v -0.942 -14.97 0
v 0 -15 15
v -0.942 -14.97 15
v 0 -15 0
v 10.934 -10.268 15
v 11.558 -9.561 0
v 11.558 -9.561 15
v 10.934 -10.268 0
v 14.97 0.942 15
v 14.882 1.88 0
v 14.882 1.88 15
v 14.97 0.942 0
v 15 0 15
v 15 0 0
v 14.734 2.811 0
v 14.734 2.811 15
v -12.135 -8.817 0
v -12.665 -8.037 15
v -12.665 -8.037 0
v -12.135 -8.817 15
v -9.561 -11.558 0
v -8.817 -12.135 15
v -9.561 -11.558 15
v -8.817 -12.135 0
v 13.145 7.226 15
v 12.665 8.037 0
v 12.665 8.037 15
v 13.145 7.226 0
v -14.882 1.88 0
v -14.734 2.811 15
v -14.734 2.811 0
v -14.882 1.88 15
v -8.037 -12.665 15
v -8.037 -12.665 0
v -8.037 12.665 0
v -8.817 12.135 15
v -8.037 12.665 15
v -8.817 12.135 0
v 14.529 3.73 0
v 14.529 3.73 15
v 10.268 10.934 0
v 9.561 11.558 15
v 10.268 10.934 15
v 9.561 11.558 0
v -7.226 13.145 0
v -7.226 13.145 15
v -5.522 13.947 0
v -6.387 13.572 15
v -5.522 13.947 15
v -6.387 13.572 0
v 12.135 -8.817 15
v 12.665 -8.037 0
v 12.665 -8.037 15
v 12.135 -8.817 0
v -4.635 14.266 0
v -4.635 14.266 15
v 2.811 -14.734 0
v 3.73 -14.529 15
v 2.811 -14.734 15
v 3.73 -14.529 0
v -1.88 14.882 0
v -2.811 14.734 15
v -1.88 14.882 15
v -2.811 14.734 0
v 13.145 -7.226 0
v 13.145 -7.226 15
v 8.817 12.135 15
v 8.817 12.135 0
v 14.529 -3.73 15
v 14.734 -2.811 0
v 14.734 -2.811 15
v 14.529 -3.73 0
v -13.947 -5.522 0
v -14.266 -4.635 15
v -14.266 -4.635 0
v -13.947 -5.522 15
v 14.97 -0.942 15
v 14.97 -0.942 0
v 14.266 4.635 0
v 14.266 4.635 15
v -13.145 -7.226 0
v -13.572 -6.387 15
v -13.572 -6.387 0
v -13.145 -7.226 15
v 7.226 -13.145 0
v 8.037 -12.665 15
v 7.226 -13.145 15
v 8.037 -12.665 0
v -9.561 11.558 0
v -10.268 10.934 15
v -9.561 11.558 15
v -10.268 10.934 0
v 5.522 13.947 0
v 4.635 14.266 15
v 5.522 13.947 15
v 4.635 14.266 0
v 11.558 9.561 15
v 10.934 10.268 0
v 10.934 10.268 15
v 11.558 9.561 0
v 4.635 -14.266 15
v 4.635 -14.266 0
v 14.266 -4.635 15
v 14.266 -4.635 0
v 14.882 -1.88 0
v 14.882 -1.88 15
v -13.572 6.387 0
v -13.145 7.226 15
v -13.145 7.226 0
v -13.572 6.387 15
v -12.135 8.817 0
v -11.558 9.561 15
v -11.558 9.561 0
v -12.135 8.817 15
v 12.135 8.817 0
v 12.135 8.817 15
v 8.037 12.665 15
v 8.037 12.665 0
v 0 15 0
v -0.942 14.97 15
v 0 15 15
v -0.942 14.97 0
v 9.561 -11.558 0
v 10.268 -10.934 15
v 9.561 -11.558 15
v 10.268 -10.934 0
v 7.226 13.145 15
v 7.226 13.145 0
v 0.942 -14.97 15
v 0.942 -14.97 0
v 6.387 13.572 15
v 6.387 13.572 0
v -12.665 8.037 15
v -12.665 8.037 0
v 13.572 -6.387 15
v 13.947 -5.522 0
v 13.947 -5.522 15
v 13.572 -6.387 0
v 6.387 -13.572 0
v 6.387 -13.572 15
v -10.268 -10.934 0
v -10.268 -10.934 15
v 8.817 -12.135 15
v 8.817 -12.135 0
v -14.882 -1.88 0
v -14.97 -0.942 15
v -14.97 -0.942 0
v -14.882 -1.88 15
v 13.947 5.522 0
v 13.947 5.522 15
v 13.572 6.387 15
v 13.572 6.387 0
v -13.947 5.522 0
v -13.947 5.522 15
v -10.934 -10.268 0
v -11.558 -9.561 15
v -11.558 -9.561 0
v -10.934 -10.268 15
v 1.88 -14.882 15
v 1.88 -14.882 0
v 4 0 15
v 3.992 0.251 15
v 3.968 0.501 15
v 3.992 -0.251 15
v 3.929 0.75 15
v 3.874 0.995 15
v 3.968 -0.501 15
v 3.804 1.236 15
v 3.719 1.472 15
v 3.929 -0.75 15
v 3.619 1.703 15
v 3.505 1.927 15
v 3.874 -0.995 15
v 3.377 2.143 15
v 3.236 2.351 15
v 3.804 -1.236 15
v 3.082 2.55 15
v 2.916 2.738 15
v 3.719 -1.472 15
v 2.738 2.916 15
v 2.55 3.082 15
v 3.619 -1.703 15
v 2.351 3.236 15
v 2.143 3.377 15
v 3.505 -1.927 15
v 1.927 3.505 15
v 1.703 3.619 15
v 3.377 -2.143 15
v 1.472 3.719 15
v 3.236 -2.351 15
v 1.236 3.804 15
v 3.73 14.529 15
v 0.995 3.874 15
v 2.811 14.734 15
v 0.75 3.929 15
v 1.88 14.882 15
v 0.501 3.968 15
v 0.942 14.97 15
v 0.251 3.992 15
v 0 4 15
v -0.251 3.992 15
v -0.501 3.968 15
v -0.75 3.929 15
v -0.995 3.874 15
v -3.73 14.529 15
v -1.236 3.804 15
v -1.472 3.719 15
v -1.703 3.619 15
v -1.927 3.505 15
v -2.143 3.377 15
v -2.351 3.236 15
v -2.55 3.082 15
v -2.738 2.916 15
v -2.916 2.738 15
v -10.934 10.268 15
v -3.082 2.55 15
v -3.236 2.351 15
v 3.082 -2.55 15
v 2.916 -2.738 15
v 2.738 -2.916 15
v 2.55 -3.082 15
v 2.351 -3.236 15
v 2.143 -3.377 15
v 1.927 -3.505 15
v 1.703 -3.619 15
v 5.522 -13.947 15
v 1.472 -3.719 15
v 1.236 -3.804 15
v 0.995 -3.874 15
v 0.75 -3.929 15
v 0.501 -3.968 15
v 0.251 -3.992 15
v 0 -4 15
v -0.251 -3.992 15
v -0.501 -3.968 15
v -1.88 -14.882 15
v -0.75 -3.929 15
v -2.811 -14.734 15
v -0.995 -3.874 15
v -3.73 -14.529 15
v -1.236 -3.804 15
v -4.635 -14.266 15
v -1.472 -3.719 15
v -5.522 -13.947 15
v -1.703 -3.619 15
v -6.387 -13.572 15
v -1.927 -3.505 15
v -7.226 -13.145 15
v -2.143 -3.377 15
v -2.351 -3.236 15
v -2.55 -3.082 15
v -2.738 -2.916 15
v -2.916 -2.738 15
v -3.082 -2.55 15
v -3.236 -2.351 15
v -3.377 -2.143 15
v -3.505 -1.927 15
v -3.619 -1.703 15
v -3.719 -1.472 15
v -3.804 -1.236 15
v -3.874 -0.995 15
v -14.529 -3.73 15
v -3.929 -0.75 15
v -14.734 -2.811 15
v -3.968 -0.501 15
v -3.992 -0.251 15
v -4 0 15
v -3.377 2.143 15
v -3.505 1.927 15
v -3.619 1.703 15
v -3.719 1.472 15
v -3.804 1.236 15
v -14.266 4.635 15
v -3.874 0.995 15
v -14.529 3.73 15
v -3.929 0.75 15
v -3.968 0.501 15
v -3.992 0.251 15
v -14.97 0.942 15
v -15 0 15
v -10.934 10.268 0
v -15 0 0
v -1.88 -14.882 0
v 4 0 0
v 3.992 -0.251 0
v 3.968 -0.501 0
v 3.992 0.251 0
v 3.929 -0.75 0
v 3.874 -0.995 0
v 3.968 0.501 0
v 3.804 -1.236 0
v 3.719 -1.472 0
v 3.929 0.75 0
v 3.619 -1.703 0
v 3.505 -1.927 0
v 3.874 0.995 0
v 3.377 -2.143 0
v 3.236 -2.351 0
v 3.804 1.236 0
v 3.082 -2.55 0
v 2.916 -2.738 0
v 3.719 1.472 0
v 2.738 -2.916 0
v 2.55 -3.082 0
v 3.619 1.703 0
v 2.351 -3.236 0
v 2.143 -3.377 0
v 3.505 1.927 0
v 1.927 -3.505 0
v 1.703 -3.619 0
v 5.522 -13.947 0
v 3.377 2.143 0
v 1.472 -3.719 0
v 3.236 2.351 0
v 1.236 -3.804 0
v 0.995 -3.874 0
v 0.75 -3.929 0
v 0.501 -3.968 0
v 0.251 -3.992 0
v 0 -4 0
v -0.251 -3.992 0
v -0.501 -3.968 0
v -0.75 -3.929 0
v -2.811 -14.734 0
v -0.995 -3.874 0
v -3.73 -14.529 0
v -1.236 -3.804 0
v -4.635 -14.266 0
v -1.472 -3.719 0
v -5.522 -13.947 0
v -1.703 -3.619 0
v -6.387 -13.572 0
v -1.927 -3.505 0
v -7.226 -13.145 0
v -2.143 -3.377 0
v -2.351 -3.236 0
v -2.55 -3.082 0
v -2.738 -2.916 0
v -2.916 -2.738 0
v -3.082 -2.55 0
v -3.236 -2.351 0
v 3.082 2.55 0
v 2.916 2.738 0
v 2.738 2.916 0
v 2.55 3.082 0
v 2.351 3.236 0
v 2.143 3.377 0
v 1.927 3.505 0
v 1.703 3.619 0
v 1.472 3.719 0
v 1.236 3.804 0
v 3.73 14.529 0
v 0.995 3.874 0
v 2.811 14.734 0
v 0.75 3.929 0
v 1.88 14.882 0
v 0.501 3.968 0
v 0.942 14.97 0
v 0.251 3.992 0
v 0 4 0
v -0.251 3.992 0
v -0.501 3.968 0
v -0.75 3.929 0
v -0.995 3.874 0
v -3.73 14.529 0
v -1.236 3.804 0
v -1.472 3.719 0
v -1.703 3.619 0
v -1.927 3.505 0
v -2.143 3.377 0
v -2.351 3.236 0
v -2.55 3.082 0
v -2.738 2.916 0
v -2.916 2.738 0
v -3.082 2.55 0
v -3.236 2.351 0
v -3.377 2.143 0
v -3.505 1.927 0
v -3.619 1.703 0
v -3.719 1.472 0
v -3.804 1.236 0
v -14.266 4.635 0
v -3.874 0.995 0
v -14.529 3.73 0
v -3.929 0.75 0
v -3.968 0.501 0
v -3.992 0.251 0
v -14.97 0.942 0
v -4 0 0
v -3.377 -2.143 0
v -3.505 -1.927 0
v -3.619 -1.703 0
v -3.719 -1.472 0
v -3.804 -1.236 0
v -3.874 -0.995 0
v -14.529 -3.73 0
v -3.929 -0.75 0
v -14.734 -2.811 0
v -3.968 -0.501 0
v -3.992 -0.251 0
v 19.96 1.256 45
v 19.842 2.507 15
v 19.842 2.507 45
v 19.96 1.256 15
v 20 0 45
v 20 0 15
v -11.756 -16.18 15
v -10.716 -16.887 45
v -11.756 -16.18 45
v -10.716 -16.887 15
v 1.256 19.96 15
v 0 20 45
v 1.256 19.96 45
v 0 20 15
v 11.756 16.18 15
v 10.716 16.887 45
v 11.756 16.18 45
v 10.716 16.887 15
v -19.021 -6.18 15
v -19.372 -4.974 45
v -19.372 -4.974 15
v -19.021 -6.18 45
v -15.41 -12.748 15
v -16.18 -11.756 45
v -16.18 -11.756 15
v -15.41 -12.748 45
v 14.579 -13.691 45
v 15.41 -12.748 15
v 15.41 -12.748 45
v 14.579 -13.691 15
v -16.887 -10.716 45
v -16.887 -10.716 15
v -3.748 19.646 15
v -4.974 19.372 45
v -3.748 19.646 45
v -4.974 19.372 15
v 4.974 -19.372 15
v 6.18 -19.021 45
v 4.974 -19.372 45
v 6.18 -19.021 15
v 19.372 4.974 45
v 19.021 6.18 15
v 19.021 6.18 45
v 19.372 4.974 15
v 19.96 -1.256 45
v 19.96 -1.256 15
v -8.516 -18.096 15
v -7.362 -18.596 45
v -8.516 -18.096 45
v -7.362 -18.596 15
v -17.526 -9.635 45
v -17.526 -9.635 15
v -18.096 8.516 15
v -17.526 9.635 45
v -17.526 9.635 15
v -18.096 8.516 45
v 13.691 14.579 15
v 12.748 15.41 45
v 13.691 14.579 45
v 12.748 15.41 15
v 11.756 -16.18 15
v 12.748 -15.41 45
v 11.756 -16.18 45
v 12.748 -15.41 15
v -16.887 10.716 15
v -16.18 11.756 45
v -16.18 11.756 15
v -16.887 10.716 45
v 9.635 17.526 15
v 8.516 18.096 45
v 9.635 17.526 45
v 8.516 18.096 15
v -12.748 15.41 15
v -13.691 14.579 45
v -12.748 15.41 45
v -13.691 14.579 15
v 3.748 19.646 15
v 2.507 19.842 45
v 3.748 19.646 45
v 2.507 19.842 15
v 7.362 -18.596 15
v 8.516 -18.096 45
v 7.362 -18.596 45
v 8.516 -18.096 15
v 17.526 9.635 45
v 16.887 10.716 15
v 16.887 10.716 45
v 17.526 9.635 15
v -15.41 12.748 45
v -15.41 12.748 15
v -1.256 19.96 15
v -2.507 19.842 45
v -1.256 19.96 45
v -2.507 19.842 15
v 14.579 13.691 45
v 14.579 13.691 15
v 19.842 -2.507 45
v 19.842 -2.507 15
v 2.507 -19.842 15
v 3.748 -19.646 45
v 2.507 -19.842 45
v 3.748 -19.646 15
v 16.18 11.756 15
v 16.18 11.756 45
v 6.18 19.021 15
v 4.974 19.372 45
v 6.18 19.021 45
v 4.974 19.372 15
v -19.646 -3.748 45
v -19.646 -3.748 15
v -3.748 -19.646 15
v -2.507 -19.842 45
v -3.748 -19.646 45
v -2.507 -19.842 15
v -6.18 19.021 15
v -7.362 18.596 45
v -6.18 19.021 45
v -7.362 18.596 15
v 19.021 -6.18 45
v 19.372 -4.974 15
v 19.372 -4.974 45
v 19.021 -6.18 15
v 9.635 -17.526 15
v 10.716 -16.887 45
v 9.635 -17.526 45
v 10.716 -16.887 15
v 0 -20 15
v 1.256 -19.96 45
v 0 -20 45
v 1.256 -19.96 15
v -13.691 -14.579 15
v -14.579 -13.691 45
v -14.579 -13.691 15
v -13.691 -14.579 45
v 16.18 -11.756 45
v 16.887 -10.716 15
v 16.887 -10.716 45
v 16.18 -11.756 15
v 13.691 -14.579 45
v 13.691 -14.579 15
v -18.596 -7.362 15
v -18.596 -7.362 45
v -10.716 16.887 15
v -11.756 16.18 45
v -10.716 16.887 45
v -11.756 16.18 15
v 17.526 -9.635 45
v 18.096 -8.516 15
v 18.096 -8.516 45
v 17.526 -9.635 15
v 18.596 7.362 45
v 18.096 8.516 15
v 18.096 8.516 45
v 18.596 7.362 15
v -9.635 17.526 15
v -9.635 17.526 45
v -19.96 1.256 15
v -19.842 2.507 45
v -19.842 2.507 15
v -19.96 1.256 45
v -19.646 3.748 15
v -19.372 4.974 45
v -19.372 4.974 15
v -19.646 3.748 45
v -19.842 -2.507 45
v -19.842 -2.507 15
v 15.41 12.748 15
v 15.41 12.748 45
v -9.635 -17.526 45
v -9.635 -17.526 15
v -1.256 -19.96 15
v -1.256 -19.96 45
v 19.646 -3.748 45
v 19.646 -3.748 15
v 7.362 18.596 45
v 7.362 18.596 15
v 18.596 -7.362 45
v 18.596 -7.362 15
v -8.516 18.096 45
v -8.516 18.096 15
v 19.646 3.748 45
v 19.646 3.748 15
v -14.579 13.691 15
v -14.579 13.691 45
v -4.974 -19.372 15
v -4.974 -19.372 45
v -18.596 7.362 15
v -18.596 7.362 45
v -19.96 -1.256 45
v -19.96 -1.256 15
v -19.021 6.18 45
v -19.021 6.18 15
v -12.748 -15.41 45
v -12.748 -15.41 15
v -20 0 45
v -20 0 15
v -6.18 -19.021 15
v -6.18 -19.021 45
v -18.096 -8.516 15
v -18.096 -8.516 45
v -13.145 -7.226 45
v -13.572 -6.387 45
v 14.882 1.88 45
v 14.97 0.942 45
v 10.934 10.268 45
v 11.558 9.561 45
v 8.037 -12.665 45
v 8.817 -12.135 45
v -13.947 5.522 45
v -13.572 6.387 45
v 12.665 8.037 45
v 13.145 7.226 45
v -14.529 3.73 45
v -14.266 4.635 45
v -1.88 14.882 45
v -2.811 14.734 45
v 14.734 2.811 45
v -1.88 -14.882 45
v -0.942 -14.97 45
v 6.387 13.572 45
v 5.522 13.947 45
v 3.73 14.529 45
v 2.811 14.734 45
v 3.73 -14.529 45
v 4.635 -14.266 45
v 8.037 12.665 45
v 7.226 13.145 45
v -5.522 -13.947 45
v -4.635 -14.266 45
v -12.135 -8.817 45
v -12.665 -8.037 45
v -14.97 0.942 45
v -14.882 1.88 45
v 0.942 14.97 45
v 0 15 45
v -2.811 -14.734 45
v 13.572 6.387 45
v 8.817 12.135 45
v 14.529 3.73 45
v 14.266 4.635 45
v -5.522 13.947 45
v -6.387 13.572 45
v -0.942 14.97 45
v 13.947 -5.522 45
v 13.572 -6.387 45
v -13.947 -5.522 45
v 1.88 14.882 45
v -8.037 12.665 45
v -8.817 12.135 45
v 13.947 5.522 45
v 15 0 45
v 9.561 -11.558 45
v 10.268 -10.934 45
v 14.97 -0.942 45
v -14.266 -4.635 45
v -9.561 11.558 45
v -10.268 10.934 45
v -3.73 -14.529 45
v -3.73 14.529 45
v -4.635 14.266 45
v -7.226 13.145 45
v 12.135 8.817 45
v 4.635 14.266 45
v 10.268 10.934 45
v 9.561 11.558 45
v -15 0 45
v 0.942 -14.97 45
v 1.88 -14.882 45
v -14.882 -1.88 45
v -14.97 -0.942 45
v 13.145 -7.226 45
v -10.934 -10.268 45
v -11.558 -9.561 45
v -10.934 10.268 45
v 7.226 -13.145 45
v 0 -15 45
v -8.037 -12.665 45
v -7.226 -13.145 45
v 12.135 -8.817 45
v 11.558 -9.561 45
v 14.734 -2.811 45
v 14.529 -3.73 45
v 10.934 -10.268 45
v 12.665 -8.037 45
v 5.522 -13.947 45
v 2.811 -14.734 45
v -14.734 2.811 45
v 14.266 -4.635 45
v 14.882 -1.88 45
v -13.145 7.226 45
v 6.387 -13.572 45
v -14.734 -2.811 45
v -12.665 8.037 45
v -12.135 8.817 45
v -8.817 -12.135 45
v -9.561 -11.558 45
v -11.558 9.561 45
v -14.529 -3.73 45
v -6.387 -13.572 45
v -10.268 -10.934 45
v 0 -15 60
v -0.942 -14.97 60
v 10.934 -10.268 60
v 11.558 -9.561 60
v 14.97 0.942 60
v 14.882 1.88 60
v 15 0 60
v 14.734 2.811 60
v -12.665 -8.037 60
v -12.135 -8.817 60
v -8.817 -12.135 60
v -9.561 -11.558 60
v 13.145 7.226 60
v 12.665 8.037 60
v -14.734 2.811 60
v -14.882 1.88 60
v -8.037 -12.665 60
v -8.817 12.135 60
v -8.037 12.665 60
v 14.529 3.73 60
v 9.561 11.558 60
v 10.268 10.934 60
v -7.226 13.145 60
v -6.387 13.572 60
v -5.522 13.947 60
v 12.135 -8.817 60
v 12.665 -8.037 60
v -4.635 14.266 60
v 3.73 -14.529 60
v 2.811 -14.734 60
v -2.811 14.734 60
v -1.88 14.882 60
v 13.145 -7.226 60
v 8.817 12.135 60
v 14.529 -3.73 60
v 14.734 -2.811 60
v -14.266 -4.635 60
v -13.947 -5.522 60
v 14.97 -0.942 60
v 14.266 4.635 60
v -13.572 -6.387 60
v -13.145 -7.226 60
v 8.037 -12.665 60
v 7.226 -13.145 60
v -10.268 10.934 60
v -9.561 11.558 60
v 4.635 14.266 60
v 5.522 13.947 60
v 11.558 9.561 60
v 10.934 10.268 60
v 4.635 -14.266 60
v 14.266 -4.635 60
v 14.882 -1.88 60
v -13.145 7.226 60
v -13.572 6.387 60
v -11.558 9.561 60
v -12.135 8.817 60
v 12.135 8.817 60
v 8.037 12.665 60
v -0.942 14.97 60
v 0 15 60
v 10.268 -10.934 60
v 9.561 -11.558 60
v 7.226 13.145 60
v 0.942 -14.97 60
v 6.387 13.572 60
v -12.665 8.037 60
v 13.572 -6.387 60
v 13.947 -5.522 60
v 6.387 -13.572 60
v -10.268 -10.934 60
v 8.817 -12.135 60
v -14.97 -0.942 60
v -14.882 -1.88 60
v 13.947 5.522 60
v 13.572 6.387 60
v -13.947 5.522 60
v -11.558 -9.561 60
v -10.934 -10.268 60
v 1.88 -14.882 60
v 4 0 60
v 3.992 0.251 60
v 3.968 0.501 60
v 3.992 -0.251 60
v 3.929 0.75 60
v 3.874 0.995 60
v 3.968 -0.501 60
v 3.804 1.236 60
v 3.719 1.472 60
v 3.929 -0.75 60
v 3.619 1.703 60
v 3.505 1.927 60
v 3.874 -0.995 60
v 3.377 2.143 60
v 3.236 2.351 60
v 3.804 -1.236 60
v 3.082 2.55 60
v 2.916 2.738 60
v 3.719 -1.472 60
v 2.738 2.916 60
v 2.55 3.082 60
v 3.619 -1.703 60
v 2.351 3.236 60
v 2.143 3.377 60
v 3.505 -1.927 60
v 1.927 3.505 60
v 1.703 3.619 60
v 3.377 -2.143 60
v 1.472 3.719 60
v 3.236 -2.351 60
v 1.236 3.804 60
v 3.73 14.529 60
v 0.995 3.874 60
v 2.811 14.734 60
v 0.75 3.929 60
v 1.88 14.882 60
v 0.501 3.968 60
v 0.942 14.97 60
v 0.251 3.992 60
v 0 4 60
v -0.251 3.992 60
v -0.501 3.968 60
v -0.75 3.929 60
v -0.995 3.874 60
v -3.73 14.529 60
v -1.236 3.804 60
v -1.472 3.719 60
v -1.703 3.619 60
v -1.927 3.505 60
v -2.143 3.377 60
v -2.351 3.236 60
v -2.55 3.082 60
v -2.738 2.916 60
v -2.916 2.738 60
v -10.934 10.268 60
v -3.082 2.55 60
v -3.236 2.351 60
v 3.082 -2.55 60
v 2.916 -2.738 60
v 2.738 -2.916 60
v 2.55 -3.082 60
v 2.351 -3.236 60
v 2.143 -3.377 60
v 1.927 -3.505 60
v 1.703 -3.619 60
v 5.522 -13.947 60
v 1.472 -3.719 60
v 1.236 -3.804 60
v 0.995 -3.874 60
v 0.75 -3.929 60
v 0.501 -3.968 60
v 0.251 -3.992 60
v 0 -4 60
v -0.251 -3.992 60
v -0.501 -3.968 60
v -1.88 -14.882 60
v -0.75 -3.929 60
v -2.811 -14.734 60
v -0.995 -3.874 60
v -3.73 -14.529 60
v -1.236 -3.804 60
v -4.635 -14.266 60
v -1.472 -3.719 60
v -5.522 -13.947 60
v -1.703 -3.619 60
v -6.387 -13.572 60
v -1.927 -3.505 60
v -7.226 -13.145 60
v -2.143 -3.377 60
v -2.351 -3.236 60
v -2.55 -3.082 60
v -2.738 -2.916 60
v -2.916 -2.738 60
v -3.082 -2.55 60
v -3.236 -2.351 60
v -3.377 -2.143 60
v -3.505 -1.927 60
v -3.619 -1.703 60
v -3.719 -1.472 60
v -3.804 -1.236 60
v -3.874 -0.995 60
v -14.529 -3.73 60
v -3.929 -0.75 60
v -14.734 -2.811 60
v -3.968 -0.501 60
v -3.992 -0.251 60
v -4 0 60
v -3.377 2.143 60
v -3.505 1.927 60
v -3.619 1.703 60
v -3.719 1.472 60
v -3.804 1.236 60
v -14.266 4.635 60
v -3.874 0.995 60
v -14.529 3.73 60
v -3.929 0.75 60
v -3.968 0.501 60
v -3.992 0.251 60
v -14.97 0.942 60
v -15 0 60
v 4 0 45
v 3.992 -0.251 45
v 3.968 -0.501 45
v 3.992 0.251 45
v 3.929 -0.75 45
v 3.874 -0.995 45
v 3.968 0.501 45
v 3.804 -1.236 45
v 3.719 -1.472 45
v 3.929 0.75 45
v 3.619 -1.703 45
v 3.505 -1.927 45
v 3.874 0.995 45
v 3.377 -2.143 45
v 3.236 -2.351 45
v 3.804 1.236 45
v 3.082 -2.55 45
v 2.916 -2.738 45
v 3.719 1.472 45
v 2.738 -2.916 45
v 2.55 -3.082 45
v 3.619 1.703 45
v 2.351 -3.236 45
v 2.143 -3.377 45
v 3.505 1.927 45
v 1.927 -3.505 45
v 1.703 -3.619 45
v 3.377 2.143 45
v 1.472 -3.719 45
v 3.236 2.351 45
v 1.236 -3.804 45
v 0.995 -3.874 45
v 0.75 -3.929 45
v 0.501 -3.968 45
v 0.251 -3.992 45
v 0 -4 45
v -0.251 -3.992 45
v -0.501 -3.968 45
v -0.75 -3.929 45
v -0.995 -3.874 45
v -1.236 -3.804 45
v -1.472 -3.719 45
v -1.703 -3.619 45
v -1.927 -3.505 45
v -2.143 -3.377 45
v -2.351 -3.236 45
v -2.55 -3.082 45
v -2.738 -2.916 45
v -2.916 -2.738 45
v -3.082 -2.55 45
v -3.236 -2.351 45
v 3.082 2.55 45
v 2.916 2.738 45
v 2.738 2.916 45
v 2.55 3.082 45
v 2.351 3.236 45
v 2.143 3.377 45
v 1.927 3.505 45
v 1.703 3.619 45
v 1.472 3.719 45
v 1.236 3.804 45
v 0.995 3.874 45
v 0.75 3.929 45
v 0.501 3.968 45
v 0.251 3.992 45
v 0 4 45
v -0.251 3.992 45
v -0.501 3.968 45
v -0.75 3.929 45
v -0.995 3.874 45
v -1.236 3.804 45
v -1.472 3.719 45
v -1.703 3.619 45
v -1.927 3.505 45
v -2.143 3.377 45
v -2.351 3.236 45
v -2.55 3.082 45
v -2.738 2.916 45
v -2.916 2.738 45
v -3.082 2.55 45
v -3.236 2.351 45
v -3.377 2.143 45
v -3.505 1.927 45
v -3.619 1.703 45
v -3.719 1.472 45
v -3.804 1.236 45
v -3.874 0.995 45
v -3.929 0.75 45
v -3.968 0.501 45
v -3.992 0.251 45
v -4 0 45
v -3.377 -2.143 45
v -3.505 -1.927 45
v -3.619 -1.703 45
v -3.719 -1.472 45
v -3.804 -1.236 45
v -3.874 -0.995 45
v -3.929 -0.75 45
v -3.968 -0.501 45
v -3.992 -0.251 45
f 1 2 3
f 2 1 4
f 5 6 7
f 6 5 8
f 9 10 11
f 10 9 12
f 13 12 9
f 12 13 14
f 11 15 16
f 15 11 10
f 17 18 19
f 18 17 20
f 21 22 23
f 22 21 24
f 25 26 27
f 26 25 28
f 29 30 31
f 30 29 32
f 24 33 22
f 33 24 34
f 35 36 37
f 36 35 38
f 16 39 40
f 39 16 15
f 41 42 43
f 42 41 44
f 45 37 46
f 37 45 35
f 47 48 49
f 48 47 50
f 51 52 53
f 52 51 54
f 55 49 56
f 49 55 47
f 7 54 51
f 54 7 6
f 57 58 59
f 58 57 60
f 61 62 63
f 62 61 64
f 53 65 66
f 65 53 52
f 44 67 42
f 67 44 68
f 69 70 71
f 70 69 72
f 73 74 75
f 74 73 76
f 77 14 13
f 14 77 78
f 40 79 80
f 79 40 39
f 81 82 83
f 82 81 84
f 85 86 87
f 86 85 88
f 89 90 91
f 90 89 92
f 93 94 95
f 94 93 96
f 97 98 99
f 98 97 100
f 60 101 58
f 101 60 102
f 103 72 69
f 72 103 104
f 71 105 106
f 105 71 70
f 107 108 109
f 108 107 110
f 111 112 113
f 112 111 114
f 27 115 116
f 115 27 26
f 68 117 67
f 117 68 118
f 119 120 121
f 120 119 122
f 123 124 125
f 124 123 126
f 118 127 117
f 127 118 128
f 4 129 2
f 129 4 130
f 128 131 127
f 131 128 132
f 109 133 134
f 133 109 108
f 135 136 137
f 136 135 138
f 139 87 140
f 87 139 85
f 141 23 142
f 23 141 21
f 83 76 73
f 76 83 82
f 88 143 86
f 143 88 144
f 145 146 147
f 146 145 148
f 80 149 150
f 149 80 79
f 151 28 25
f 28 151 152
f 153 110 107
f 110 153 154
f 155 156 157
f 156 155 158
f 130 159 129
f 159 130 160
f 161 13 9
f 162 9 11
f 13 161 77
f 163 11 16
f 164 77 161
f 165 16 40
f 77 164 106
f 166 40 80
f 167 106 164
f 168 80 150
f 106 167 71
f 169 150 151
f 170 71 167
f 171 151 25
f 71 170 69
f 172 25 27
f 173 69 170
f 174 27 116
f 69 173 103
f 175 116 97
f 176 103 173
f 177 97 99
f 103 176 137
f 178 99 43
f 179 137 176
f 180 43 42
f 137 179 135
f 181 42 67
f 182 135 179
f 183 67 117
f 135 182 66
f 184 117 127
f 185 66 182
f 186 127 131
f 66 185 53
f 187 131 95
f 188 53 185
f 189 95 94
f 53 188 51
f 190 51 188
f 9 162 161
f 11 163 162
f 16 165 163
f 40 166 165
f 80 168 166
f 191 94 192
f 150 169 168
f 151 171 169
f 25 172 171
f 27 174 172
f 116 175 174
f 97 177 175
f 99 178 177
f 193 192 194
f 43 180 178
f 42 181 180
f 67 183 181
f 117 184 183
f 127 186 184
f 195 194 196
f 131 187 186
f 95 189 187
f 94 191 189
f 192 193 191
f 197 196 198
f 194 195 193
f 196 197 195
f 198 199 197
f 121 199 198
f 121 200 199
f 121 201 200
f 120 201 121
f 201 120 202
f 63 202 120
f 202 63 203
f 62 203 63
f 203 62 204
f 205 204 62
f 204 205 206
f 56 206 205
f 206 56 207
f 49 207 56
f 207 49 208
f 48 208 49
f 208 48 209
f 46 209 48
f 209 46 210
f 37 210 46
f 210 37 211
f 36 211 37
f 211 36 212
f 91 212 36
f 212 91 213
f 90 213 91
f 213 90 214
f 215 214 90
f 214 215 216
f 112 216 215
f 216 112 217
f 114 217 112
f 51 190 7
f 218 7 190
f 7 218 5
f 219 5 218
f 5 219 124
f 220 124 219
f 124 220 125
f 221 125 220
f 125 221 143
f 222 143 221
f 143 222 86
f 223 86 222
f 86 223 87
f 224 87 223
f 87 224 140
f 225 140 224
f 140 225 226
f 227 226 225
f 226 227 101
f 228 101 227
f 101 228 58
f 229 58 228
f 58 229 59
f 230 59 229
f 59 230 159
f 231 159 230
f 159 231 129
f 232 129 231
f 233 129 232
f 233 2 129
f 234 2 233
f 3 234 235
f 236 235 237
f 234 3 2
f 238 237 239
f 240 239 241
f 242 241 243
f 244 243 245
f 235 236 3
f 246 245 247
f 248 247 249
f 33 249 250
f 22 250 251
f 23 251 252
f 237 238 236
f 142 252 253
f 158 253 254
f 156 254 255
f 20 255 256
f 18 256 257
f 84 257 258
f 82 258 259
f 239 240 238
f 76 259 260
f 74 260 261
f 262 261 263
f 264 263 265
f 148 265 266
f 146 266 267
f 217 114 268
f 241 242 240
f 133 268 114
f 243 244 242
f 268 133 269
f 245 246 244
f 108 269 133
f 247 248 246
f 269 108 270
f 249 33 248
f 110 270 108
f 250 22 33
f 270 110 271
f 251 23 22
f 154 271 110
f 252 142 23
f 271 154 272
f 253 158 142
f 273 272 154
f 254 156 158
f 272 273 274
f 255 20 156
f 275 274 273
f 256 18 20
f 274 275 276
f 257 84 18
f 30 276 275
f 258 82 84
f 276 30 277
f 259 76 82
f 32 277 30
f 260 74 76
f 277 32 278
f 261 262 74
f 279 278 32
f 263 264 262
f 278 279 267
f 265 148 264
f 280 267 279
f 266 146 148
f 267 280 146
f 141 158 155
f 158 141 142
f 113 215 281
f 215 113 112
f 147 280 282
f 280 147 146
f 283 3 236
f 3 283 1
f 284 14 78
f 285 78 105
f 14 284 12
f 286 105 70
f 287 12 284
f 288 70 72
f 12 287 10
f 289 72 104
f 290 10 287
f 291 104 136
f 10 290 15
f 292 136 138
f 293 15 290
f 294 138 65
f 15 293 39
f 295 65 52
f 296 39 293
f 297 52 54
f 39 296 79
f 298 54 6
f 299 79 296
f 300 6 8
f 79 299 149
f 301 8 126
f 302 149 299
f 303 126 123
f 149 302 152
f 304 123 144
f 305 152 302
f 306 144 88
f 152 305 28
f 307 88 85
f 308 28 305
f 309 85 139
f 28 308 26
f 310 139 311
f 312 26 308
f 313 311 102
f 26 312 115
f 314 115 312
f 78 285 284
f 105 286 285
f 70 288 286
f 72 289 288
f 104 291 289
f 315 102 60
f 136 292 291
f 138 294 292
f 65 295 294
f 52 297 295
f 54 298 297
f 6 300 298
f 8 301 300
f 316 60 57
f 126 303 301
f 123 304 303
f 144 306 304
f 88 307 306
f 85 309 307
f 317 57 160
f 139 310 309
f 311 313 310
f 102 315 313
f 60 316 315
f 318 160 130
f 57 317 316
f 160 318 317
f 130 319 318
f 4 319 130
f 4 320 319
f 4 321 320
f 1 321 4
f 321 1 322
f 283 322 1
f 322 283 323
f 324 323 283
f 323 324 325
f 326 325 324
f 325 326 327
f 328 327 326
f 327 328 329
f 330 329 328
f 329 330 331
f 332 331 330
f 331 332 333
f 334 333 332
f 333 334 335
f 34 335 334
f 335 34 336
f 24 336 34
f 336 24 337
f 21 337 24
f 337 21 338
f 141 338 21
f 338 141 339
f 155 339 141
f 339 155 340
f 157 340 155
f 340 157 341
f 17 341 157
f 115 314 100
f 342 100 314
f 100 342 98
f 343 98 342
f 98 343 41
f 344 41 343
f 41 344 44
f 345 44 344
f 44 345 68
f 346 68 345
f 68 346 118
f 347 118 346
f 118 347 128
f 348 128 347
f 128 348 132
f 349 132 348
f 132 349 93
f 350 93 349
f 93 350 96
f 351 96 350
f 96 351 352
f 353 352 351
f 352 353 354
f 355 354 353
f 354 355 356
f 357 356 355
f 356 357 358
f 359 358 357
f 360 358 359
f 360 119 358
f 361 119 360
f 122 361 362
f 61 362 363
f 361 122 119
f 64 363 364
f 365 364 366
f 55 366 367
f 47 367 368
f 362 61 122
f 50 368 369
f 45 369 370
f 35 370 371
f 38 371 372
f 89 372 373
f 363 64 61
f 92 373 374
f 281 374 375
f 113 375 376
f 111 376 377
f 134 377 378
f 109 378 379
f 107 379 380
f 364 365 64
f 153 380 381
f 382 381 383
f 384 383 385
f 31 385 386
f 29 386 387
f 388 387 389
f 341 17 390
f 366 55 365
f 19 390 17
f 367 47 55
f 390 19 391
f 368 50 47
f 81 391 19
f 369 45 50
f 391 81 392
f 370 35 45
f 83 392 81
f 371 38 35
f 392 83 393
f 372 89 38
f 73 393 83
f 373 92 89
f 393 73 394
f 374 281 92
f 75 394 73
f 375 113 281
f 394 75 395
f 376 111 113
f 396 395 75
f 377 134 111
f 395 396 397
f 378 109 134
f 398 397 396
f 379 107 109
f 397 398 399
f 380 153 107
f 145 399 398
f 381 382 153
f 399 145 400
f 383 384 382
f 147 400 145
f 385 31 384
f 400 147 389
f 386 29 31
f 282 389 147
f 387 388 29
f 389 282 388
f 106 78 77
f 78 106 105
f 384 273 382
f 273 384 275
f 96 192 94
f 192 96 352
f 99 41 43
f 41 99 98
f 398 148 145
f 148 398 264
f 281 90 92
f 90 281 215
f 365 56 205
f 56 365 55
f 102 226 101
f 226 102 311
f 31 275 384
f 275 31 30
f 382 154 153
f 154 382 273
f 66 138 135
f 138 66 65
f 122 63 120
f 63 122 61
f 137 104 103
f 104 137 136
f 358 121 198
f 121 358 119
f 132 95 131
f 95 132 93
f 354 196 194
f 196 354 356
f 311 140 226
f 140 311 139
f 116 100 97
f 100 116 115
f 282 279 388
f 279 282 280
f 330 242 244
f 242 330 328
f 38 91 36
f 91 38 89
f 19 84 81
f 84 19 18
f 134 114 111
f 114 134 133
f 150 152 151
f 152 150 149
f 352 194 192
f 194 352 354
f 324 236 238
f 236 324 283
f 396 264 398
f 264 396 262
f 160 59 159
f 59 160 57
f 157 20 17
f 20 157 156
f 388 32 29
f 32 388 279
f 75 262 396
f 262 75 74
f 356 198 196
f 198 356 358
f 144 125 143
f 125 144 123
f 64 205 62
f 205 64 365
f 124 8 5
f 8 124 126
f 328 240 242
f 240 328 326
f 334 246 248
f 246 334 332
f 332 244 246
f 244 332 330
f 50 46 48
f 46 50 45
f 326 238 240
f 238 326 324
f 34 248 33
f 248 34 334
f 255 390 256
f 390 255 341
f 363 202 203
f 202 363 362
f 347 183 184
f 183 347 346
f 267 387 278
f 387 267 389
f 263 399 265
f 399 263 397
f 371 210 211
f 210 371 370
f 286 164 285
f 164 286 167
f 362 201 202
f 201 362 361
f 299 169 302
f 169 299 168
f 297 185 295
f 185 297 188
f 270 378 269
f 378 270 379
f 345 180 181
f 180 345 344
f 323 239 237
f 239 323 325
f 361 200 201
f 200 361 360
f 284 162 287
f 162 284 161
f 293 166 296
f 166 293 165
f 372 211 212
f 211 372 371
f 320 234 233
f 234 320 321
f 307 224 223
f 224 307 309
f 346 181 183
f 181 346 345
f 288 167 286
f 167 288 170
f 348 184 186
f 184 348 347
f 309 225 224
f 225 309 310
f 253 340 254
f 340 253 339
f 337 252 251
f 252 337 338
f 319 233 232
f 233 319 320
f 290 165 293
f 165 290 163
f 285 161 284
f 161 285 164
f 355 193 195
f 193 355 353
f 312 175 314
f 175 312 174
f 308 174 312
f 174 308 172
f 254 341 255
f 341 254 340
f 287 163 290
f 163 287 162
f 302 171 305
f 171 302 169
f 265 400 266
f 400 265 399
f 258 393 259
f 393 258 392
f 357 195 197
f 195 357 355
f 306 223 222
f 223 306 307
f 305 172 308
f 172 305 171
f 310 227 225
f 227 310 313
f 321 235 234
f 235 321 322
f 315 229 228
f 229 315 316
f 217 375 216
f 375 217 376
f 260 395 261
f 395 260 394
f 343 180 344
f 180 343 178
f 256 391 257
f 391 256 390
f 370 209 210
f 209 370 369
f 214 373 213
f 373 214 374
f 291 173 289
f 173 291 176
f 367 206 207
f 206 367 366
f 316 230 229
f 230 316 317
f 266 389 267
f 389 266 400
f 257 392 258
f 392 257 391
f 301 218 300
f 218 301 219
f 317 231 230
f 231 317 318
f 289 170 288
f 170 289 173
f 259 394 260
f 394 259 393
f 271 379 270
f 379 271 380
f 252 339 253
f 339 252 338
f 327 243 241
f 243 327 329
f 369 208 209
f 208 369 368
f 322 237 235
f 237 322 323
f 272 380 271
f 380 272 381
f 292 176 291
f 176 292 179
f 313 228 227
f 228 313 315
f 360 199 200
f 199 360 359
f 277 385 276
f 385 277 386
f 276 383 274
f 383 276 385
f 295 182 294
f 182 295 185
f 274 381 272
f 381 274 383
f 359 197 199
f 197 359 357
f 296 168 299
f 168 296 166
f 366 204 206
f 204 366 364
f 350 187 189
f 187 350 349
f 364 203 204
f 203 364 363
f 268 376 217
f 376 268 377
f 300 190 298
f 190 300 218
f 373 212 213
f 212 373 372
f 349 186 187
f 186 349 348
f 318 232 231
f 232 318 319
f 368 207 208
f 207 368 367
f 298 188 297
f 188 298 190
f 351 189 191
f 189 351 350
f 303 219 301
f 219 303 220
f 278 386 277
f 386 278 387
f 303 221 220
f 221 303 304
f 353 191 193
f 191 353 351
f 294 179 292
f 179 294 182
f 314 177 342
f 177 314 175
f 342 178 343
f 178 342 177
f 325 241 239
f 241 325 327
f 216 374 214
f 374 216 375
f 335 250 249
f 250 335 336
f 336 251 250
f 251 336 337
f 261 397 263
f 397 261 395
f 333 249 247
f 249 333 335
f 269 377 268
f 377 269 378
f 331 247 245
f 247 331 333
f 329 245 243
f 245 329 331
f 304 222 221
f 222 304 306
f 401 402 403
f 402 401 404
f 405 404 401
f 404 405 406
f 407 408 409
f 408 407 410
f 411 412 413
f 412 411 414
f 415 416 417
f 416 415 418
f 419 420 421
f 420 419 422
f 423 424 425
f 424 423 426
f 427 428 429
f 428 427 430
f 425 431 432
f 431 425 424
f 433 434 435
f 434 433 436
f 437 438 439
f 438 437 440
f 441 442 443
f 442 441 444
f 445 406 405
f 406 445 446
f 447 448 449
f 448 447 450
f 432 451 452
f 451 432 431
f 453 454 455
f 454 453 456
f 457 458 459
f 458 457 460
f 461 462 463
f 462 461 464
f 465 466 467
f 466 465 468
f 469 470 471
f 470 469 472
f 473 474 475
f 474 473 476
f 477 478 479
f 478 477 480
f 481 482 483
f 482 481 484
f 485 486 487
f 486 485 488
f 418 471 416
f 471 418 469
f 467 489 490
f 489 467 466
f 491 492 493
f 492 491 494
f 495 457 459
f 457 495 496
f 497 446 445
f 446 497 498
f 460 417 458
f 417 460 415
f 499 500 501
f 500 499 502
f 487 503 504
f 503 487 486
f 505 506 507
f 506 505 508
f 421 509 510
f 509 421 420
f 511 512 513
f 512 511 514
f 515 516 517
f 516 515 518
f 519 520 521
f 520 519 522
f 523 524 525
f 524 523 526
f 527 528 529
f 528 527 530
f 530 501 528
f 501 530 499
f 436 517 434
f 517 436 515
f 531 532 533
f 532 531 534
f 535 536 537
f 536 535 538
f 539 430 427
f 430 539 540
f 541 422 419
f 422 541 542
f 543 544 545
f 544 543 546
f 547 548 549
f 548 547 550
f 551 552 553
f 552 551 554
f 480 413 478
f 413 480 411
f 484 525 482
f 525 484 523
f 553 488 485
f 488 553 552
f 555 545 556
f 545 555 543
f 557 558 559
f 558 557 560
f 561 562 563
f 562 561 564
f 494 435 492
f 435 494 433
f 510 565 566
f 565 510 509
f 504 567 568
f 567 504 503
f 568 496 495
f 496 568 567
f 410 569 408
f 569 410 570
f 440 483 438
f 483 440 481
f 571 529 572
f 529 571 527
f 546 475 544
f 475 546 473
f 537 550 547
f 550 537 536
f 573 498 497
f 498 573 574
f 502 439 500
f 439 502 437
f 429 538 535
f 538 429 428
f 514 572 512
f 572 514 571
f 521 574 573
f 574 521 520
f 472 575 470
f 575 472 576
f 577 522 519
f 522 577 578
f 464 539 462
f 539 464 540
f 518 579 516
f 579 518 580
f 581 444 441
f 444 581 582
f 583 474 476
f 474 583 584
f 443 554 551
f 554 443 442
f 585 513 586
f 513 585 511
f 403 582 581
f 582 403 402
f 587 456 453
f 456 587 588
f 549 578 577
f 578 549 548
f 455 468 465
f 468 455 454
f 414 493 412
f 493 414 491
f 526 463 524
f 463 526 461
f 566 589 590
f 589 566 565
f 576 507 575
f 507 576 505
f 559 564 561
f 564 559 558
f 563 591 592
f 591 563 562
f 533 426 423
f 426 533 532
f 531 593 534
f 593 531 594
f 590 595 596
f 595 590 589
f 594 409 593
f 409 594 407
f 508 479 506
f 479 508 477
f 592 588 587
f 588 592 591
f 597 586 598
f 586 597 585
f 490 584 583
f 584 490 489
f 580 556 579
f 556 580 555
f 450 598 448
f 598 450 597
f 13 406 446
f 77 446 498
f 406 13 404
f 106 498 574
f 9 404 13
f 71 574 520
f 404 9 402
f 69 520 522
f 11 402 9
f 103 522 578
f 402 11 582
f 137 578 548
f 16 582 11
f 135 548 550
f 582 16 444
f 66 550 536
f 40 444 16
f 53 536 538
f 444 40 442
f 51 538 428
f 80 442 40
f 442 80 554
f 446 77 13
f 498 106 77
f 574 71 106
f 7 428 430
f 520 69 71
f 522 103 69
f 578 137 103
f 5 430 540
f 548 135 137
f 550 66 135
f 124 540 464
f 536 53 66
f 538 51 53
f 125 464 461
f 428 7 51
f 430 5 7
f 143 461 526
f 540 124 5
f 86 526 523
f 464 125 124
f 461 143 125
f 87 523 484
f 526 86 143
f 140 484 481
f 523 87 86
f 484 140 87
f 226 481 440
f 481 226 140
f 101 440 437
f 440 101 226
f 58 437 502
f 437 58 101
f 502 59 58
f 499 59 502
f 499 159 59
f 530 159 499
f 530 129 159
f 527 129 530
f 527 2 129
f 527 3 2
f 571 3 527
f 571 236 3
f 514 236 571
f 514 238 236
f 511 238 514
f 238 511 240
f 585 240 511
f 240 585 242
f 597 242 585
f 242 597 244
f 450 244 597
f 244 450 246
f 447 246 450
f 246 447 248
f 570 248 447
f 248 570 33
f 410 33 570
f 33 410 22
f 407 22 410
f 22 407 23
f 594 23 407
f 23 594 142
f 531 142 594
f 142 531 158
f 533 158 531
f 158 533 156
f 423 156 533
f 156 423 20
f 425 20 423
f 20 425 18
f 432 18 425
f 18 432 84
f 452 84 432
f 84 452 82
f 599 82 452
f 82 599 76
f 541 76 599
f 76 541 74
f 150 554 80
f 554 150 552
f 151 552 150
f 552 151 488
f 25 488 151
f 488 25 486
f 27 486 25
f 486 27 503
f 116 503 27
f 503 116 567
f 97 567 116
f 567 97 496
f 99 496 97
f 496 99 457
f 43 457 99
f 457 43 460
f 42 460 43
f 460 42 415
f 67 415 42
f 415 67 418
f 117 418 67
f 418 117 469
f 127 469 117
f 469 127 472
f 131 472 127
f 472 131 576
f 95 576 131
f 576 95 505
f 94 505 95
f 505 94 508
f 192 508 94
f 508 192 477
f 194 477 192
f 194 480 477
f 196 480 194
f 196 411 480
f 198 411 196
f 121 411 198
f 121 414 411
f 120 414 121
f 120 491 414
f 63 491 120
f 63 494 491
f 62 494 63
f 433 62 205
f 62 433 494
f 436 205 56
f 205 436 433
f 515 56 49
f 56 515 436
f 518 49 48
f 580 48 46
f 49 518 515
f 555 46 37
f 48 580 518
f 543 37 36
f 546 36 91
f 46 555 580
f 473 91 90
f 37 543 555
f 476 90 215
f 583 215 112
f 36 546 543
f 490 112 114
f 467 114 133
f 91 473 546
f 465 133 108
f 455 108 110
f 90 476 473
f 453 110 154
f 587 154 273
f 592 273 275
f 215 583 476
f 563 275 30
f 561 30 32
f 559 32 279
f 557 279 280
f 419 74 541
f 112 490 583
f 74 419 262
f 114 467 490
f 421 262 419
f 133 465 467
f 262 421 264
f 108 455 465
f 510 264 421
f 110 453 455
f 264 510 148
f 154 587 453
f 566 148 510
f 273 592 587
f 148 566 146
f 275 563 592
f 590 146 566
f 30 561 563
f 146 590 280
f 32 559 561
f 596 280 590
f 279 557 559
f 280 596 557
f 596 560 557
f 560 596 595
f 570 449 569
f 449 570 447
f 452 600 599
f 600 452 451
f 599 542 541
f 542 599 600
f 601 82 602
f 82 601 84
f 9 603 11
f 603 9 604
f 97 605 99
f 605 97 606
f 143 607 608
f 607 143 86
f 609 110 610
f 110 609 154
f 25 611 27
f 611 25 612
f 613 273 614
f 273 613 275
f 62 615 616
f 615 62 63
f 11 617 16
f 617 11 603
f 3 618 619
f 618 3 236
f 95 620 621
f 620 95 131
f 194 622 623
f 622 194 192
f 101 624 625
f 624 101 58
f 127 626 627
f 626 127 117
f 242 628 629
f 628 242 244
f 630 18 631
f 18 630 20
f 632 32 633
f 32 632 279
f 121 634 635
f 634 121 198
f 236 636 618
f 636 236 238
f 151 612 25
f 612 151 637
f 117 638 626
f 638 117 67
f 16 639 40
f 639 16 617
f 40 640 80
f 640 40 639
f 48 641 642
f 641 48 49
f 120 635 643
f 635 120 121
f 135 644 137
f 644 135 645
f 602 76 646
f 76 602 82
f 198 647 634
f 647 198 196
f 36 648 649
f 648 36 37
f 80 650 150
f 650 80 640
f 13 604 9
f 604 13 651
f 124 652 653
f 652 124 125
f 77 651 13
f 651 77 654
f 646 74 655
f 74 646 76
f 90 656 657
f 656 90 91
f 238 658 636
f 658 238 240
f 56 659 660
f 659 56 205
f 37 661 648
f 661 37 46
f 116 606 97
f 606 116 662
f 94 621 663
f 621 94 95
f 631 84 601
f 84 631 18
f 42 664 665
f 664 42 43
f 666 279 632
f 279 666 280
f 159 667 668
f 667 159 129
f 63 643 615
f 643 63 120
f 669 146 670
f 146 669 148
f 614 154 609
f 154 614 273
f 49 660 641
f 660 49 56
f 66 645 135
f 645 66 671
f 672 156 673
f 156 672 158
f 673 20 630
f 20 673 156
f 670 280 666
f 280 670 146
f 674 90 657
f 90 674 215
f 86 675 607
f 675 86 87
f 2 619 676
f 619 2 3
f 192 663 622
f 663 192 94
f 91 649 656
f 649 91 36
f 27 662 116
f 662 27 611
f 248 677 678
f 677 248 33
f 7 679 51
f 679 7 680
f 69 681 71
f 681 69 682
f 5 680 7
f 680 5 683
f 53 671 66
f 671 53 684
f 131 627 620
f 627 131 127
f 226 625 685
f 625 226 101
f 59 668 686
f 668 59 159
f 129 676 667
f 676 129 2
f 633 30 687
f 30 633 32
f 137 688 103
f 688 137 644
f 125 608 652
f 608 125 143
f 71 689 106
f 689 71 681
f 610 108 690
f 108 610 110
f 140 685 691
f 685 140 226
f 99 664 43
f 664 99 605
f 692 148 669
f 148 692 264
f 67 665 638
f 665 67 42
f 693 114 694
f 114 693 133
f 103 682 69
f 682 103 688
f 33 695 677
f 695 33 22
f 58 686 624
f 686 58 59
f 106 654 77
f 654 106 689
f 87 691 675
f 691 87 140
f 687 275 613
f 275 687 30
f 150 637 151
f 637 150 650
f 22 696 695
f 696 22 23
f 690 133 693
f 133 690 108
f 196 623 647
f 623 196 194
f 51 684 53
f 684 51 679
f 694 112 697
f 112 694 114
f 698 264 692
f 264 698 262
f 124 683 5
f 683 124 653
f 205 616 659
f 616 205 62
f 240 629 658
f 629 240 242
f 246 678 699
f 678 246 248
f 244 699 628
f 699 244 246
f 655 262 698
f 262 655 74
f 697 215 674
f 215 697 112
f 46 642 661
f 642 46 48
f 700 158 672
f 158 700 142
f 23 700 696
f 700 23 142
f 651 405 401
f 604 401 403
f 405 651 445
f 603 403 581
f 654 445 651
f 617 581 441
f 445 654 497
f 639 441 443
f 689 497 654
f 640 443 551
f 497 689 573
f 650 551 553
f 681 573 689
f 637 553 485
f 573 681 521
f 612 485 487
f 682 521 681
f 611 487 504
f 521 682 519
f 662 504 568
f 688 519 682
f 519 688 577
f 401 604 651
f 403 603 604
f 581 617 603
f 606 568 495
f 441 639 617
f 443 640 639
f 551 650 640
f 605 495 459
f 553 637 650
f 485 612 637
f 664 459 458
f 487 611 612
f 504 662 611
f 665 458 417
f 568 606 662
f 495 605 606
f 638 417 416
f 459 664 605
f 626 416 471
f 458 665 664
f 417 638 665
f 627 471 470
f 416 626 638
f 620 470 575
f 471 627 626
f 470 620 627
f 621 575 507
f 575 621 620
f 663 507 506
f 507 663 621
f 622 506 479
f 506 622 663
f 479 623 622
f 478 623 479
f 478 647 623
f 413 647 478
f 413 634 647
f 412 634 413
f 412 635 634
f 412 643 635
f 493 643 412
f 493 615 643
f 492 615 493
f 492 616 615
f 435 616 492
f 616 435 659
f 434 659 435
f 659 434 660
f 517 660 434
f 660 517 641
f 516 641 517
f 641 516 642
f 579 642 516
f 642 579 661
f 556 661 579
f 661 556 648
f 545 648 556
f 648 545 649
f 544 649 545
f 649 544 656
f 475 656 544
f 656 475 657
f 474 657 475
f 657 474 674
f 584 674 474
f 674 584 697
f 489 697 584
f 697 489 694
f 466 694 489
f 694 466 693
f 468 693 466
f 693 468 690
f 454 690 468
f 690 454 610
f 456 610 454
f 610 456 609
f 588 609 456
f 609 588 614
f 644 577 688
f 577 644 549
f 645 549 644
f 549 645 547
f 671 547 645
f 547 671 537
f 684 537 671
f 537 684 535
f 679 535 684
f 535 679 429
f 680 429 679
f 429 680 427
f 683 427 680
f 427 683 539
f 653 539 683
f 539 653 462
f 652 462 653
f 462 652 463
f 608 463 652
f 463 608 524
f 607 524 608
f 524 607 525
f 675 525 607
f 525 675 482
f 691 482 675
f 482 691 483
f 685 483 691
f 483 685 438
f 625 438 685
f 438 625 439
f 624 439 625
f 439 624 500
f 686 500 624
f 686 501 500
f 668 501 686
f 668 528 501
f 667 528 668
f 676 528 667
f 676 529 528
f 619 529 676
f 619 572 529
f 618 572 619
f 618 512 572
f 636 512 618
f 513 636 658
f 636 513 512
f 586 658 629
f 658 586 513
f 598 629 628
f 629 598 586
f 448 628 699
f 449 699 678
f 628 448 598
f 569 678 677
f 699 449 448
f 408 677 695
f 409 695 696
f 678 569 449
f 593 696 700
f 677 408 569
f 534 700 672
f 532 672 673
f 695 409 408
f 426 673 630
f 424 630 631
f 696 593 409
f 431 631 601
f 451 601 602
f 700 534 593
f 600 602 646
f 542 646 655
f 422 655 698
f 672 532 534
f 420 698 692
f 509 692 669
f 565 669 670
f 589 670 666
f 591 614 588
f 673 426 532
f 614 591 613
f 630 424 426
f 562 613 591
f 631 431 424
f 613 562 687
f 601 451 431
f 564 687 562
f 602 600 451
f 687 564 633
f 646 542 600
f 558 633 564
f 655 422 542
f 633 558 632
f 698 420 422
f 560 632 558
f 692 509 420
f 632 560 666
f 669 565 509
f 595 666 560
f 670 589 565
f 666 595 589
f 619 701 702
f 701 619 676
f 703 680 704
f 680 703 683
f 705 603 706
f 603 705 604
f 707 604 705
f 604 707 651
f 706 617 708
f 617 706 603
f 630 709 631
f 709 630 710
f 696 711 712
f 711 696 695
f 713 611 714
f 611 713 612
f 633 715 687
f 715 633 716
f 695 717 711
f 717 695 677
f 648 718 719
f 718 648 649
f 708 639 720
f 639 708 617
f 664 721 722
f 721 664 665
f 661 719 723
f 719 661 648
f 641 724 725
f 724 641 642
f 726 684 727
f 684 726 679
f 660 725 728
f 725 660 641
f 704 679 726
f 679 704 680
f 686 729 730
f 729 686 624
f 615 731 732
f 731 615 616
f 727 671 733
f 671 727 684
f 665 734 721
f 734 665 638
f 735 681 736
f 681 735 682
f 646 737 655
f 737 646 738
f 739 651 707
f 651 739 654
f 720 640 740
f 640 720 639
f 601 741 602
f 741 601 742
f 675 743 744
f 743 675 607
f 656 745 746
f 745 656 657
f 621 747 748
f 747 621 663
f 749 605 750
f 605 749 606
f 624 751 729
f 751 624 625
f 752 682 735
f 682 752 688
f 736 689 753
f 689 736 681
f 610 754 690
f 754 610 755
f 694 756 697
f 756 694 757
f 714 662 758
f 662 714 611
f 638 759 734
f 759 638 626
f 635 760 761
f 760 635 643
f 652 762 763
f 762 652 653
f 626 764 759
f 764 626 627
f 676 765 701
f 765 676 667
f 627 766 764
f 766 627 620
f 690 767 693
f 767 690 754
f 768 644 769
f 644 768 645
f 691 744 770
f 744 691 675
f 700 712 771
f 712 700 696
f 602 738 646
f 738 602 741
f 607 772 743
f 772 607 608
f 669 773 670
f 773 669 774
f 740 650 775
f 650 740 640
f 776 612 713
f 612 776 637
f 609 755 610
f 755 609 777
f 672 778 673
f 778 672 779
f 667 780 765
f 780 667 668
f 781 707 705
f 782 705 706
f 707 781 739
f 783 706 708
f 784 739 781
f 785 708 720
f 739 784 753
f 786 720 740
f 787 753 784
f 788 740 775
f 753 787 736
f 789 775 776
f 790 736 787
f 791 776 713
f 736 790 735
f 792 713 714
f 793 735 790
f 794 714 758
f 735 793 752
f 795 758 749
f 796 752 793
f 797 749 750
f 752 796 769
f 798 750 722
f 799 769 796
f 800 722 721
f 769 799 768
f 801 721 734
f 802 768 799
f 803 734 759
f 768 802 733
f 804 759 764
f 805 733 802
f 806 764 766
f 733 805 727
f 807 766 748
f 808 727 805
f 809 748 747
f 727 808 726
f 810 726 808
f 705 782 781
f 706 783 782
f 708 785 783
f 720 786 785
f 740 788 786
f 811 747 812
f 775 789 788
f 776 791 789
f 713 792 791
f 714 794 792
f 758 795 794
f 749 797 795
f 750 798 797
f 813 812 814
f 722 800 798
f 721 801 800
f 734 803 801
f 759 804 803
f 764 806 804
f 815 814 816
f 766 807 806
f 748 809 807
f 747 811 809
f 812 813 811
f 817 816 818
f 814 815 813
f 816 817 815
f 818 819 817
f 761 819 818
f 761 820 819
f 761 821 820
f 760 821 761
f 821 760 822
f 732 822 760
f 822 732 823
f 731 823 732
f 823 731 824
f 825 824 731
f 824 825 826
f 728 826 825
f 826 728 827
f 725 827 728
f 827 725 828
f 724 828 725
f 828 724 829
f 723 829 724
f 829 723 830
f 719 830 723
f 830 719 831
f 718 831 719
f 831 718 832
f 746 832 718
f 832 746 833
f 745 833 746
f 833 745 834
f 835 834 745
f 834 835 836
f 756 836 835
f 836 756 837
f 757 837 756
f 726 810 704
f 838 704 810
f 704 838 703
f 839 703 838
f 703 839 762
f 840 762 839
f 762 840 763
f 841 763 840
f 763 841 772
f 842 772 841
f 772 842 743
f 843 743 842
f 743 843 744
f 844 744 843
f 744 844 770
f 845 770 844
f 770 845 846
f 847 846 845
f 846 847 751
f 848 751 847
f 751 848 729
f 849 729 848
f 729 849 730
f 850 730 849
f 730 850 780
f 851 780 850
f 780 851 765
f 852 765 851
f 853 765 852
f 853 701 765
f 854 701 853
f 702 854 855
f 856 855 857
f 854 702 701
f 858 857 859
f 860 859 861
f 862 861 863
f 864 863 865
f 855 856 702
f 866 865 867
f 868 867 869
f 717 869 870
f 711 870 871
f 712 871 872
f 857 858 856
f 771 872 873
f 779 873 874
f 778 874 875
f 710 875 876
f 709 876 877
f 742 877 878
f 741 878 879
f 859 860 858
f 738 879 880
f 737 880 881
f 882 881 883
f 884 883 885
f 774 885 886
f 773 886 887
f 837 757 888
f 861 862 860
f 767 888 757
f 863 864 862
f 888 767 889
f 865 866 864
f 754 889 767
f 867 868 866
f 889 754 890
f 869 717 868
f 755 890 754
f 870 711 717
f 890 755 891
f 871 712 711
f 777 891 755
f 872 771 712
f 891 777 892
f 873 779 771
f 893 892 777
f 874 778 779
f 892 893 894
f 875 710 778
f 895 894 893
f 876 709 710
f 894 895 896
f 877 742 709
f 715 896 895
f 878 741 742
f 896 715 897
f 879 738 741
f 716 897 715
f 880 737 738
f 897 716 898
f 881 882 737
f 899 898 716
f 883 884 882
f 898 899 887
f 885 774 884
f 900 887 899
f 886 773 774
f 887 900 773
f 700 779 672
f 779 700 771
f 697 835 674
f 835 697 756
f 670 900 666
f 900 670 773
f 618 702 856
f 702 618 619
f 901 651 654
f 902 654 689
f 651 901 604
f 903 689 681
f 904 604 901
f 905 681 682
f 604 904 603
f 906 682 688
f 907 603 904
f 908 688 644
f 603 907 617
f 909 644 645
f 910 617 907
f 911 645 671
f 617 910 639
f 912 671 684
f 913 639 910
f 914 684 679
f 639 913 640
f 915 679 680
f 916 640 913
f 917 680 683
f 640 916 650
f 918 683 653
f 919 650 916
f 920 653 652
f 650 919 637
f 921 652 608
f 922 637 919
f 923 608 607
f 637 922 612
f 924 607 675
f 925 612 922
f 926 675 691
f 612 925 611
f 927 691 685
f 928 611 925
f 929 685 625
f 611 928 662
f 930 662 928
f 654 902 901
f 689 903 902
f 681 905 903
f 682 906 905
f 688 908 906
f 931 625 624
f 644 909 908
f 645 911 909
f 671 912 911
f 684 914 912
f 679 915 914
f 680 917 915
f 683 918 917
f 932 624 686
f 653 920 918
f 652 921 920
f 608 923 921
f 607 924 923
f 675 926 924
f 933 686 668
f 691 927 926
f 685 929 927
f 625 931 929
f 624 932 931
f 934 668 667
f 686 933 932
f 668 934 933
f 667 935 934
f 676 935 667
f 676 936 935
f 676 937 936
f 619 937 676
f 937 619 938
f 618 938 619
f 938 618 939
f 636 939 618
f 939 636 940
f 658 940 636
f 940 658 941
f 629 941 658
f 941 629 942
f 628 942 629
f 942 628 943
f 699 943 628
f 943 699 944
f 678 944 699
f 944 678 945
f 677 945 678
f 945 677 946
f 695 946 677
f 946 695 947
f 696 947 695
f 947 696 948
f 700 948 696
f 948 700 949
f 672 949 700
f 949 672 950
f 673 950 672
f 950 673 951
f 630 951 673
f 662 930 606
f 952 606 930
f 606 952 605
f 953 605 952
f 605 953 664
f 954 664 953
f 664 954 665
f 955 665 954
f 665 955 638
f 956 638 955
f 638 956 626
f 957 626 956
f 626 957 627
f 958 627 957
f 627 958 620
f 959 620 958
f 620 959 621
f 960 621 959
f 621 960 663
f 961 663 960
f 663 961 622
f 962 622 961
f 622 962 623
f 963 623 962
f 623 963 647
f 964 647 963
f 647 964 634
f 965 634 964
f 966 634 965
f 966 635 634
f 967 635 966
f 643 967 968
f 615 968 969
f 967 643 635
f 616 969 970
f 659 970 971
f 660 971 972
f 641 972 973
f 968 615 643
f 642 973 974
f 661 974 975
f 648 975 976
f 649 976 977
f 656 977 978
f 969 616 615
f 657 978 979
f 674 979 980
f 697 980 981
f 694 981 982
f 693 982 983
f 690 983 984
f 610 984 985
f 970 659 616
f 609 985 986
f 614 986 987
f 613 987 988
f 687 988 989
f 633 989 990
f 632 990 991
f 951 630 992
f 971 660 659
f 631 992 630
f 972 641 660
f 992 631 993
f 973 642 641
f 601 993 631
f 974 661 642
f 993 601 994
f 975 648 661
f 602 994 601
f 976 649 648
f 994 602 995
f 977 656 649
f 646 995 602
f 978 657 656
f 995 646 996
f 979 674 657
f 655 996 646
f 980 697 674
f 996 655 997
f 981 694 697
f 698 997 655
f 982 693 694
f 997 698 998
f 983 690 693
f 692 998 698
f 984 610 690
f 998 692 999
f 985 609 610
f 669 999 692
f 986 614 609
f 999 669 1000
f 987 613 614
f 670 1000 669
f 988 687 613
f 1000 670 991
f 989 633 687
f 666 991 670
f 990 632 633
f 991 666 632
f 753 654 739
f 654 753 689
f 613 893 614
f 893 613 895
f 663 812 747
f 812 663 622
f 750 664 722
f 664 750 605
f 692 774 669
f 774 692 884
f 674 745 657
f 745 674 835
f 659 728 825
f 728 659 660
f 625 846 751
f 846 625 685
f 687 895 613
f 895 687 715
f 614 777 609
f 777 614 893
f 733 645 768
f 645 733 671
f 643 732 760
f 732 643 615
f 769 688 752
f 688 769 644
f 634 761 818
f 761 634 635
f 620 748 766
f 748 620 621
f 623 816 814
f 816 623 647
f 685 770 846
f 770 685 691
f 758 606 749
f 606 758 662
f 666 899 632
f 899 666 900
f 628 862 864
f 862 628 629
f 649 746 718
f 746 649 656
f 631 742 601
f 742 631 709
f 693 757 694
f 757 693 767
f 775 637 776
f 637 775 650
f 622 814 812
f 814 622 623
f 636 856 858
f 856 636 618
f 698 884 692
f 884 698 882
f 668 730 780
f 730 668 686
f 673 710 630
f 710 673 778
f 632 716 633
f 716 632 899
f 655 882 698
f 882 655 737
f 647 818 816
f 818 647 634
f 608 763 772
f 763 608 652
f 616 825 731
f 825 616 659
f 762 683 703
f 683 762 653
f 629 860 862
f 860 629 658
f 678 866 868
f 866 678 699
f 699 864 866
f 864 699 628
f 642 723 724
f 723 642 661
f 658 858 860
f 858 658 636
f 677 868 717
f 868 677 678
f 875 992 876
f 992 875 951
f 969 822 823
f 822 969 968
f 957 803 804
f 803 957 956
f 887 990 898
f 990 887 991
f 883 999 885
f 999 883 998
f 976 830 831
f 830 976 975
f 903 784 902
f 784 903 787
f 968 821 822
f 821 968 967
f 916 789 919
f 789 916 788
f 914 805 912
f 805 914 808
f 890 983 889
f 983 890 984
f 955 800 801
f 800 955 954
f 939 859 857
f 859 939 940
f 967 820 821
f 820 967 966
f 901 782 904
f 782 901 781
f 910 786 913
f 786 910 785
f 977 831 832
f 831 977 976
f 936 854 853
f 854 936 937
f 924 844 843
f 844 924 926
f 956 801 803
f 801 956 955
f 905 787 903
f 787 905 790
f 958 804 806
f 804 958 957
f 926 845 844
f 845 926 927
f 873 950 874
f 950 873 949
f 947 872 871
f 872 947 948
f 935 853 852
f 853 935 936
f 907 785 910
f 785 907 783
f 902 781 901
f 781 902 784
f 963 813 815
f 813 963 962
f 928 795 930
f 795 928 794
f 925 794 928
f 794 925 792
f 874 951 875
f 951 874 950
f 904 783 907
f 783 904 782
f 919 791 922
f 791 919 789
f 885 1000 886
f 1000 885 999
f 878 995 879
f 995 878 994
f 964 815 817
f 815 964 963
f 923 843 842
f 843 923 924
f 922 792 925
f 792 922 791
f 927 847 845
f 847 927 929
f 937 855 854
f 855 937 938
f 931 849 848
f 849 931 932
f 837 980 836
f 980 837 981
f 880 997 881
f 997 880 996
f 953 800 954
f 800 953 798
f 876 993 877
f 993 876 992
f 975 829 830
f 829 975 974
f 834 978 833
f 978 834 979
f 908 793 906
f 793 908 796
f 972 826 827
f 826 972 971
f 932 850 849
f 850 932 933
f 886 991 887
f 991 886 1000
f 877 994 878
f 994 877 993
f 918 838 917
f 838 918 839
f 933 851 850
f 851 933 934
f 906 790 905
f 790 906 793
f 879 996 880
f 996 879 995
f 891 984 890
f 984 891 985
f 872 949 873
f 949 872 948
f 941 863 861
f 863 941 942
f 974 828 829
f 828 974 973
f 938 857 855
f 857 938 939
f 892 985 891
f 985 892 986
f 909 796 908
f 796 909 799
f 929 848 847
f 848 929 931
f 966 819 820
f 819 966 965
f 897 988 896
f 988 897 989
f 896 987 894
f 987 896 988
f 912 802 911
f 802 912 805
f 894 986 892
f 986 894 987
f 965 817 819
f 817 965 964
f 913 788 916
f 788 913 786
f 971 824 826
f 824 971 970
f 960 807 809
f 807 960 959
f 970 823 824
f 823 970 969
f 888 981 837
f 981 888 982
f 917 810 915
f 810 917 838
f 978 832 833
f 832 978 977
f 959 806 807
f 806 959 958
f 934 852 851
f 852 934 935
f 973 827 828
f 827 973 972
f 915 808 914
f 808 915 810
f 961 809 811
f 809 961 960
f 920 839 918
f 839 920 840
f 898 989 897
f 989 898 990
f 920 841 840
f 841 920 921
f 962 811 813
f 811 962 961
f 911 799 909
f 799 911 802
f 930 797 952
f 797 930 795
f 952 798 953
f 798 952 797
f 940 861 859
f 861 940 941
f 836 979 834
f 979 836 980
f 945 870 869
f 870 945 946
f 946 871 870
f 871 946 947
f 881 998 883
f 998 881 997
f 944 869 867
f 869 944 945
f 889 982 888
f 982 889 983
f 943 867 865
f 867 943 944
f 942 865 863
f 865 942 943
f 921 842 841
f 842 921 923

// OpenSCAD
$fn = 100; // Smoothness

// Module: Input/Output Shaft Hub
module shaft_hub() {
    difference() {
        cylinder(h = 15, d = 30);
        translate([0, 0, -1])
            cylinder(h = 17, d = 8); // Central bore
    }
}

// Module: Internal Gear Ring (simplified teeth)
module internal_gear_ring() {
    difference() {
        cylinder(h = 5, d = 40);
        translate([0, 0, -1])
            cylinder(h = 7, d = 30); // Inner cut to fit hub
    }
}

// Module: External Gear Sleeve (simplified external teeth)
module external_gear_sleeve() {
    difference() {
        cylinder(h = 20, d = 40);
        translate([0, 0, -1])
            cylinder(h = 22, d = 30); // Inner cut to fit gear rings
    }
}

// Assembly
module flexible_coupling() {
    // Layer 1: Input Shaft Hub
    translate([0, 0, 0])
        shaft_hub();

    // Layer 2: Internal Gear Ring 1
    translate([0, 0, 15])
        internal_gear_ring();

    // Layer 3: External Gear Sleeve
    translate([0, 0, 20])
        external_gear_sleeve();

    // Layer 4: Internal Gear Ring 2
    translate([0, 0, 40])
        internal_gear_ring();

    // Layer 5: Output Shaft Hub
    translate([0, 0, 45])
        shaft_hub();
}

// Render the full model
flexible_coupling();
